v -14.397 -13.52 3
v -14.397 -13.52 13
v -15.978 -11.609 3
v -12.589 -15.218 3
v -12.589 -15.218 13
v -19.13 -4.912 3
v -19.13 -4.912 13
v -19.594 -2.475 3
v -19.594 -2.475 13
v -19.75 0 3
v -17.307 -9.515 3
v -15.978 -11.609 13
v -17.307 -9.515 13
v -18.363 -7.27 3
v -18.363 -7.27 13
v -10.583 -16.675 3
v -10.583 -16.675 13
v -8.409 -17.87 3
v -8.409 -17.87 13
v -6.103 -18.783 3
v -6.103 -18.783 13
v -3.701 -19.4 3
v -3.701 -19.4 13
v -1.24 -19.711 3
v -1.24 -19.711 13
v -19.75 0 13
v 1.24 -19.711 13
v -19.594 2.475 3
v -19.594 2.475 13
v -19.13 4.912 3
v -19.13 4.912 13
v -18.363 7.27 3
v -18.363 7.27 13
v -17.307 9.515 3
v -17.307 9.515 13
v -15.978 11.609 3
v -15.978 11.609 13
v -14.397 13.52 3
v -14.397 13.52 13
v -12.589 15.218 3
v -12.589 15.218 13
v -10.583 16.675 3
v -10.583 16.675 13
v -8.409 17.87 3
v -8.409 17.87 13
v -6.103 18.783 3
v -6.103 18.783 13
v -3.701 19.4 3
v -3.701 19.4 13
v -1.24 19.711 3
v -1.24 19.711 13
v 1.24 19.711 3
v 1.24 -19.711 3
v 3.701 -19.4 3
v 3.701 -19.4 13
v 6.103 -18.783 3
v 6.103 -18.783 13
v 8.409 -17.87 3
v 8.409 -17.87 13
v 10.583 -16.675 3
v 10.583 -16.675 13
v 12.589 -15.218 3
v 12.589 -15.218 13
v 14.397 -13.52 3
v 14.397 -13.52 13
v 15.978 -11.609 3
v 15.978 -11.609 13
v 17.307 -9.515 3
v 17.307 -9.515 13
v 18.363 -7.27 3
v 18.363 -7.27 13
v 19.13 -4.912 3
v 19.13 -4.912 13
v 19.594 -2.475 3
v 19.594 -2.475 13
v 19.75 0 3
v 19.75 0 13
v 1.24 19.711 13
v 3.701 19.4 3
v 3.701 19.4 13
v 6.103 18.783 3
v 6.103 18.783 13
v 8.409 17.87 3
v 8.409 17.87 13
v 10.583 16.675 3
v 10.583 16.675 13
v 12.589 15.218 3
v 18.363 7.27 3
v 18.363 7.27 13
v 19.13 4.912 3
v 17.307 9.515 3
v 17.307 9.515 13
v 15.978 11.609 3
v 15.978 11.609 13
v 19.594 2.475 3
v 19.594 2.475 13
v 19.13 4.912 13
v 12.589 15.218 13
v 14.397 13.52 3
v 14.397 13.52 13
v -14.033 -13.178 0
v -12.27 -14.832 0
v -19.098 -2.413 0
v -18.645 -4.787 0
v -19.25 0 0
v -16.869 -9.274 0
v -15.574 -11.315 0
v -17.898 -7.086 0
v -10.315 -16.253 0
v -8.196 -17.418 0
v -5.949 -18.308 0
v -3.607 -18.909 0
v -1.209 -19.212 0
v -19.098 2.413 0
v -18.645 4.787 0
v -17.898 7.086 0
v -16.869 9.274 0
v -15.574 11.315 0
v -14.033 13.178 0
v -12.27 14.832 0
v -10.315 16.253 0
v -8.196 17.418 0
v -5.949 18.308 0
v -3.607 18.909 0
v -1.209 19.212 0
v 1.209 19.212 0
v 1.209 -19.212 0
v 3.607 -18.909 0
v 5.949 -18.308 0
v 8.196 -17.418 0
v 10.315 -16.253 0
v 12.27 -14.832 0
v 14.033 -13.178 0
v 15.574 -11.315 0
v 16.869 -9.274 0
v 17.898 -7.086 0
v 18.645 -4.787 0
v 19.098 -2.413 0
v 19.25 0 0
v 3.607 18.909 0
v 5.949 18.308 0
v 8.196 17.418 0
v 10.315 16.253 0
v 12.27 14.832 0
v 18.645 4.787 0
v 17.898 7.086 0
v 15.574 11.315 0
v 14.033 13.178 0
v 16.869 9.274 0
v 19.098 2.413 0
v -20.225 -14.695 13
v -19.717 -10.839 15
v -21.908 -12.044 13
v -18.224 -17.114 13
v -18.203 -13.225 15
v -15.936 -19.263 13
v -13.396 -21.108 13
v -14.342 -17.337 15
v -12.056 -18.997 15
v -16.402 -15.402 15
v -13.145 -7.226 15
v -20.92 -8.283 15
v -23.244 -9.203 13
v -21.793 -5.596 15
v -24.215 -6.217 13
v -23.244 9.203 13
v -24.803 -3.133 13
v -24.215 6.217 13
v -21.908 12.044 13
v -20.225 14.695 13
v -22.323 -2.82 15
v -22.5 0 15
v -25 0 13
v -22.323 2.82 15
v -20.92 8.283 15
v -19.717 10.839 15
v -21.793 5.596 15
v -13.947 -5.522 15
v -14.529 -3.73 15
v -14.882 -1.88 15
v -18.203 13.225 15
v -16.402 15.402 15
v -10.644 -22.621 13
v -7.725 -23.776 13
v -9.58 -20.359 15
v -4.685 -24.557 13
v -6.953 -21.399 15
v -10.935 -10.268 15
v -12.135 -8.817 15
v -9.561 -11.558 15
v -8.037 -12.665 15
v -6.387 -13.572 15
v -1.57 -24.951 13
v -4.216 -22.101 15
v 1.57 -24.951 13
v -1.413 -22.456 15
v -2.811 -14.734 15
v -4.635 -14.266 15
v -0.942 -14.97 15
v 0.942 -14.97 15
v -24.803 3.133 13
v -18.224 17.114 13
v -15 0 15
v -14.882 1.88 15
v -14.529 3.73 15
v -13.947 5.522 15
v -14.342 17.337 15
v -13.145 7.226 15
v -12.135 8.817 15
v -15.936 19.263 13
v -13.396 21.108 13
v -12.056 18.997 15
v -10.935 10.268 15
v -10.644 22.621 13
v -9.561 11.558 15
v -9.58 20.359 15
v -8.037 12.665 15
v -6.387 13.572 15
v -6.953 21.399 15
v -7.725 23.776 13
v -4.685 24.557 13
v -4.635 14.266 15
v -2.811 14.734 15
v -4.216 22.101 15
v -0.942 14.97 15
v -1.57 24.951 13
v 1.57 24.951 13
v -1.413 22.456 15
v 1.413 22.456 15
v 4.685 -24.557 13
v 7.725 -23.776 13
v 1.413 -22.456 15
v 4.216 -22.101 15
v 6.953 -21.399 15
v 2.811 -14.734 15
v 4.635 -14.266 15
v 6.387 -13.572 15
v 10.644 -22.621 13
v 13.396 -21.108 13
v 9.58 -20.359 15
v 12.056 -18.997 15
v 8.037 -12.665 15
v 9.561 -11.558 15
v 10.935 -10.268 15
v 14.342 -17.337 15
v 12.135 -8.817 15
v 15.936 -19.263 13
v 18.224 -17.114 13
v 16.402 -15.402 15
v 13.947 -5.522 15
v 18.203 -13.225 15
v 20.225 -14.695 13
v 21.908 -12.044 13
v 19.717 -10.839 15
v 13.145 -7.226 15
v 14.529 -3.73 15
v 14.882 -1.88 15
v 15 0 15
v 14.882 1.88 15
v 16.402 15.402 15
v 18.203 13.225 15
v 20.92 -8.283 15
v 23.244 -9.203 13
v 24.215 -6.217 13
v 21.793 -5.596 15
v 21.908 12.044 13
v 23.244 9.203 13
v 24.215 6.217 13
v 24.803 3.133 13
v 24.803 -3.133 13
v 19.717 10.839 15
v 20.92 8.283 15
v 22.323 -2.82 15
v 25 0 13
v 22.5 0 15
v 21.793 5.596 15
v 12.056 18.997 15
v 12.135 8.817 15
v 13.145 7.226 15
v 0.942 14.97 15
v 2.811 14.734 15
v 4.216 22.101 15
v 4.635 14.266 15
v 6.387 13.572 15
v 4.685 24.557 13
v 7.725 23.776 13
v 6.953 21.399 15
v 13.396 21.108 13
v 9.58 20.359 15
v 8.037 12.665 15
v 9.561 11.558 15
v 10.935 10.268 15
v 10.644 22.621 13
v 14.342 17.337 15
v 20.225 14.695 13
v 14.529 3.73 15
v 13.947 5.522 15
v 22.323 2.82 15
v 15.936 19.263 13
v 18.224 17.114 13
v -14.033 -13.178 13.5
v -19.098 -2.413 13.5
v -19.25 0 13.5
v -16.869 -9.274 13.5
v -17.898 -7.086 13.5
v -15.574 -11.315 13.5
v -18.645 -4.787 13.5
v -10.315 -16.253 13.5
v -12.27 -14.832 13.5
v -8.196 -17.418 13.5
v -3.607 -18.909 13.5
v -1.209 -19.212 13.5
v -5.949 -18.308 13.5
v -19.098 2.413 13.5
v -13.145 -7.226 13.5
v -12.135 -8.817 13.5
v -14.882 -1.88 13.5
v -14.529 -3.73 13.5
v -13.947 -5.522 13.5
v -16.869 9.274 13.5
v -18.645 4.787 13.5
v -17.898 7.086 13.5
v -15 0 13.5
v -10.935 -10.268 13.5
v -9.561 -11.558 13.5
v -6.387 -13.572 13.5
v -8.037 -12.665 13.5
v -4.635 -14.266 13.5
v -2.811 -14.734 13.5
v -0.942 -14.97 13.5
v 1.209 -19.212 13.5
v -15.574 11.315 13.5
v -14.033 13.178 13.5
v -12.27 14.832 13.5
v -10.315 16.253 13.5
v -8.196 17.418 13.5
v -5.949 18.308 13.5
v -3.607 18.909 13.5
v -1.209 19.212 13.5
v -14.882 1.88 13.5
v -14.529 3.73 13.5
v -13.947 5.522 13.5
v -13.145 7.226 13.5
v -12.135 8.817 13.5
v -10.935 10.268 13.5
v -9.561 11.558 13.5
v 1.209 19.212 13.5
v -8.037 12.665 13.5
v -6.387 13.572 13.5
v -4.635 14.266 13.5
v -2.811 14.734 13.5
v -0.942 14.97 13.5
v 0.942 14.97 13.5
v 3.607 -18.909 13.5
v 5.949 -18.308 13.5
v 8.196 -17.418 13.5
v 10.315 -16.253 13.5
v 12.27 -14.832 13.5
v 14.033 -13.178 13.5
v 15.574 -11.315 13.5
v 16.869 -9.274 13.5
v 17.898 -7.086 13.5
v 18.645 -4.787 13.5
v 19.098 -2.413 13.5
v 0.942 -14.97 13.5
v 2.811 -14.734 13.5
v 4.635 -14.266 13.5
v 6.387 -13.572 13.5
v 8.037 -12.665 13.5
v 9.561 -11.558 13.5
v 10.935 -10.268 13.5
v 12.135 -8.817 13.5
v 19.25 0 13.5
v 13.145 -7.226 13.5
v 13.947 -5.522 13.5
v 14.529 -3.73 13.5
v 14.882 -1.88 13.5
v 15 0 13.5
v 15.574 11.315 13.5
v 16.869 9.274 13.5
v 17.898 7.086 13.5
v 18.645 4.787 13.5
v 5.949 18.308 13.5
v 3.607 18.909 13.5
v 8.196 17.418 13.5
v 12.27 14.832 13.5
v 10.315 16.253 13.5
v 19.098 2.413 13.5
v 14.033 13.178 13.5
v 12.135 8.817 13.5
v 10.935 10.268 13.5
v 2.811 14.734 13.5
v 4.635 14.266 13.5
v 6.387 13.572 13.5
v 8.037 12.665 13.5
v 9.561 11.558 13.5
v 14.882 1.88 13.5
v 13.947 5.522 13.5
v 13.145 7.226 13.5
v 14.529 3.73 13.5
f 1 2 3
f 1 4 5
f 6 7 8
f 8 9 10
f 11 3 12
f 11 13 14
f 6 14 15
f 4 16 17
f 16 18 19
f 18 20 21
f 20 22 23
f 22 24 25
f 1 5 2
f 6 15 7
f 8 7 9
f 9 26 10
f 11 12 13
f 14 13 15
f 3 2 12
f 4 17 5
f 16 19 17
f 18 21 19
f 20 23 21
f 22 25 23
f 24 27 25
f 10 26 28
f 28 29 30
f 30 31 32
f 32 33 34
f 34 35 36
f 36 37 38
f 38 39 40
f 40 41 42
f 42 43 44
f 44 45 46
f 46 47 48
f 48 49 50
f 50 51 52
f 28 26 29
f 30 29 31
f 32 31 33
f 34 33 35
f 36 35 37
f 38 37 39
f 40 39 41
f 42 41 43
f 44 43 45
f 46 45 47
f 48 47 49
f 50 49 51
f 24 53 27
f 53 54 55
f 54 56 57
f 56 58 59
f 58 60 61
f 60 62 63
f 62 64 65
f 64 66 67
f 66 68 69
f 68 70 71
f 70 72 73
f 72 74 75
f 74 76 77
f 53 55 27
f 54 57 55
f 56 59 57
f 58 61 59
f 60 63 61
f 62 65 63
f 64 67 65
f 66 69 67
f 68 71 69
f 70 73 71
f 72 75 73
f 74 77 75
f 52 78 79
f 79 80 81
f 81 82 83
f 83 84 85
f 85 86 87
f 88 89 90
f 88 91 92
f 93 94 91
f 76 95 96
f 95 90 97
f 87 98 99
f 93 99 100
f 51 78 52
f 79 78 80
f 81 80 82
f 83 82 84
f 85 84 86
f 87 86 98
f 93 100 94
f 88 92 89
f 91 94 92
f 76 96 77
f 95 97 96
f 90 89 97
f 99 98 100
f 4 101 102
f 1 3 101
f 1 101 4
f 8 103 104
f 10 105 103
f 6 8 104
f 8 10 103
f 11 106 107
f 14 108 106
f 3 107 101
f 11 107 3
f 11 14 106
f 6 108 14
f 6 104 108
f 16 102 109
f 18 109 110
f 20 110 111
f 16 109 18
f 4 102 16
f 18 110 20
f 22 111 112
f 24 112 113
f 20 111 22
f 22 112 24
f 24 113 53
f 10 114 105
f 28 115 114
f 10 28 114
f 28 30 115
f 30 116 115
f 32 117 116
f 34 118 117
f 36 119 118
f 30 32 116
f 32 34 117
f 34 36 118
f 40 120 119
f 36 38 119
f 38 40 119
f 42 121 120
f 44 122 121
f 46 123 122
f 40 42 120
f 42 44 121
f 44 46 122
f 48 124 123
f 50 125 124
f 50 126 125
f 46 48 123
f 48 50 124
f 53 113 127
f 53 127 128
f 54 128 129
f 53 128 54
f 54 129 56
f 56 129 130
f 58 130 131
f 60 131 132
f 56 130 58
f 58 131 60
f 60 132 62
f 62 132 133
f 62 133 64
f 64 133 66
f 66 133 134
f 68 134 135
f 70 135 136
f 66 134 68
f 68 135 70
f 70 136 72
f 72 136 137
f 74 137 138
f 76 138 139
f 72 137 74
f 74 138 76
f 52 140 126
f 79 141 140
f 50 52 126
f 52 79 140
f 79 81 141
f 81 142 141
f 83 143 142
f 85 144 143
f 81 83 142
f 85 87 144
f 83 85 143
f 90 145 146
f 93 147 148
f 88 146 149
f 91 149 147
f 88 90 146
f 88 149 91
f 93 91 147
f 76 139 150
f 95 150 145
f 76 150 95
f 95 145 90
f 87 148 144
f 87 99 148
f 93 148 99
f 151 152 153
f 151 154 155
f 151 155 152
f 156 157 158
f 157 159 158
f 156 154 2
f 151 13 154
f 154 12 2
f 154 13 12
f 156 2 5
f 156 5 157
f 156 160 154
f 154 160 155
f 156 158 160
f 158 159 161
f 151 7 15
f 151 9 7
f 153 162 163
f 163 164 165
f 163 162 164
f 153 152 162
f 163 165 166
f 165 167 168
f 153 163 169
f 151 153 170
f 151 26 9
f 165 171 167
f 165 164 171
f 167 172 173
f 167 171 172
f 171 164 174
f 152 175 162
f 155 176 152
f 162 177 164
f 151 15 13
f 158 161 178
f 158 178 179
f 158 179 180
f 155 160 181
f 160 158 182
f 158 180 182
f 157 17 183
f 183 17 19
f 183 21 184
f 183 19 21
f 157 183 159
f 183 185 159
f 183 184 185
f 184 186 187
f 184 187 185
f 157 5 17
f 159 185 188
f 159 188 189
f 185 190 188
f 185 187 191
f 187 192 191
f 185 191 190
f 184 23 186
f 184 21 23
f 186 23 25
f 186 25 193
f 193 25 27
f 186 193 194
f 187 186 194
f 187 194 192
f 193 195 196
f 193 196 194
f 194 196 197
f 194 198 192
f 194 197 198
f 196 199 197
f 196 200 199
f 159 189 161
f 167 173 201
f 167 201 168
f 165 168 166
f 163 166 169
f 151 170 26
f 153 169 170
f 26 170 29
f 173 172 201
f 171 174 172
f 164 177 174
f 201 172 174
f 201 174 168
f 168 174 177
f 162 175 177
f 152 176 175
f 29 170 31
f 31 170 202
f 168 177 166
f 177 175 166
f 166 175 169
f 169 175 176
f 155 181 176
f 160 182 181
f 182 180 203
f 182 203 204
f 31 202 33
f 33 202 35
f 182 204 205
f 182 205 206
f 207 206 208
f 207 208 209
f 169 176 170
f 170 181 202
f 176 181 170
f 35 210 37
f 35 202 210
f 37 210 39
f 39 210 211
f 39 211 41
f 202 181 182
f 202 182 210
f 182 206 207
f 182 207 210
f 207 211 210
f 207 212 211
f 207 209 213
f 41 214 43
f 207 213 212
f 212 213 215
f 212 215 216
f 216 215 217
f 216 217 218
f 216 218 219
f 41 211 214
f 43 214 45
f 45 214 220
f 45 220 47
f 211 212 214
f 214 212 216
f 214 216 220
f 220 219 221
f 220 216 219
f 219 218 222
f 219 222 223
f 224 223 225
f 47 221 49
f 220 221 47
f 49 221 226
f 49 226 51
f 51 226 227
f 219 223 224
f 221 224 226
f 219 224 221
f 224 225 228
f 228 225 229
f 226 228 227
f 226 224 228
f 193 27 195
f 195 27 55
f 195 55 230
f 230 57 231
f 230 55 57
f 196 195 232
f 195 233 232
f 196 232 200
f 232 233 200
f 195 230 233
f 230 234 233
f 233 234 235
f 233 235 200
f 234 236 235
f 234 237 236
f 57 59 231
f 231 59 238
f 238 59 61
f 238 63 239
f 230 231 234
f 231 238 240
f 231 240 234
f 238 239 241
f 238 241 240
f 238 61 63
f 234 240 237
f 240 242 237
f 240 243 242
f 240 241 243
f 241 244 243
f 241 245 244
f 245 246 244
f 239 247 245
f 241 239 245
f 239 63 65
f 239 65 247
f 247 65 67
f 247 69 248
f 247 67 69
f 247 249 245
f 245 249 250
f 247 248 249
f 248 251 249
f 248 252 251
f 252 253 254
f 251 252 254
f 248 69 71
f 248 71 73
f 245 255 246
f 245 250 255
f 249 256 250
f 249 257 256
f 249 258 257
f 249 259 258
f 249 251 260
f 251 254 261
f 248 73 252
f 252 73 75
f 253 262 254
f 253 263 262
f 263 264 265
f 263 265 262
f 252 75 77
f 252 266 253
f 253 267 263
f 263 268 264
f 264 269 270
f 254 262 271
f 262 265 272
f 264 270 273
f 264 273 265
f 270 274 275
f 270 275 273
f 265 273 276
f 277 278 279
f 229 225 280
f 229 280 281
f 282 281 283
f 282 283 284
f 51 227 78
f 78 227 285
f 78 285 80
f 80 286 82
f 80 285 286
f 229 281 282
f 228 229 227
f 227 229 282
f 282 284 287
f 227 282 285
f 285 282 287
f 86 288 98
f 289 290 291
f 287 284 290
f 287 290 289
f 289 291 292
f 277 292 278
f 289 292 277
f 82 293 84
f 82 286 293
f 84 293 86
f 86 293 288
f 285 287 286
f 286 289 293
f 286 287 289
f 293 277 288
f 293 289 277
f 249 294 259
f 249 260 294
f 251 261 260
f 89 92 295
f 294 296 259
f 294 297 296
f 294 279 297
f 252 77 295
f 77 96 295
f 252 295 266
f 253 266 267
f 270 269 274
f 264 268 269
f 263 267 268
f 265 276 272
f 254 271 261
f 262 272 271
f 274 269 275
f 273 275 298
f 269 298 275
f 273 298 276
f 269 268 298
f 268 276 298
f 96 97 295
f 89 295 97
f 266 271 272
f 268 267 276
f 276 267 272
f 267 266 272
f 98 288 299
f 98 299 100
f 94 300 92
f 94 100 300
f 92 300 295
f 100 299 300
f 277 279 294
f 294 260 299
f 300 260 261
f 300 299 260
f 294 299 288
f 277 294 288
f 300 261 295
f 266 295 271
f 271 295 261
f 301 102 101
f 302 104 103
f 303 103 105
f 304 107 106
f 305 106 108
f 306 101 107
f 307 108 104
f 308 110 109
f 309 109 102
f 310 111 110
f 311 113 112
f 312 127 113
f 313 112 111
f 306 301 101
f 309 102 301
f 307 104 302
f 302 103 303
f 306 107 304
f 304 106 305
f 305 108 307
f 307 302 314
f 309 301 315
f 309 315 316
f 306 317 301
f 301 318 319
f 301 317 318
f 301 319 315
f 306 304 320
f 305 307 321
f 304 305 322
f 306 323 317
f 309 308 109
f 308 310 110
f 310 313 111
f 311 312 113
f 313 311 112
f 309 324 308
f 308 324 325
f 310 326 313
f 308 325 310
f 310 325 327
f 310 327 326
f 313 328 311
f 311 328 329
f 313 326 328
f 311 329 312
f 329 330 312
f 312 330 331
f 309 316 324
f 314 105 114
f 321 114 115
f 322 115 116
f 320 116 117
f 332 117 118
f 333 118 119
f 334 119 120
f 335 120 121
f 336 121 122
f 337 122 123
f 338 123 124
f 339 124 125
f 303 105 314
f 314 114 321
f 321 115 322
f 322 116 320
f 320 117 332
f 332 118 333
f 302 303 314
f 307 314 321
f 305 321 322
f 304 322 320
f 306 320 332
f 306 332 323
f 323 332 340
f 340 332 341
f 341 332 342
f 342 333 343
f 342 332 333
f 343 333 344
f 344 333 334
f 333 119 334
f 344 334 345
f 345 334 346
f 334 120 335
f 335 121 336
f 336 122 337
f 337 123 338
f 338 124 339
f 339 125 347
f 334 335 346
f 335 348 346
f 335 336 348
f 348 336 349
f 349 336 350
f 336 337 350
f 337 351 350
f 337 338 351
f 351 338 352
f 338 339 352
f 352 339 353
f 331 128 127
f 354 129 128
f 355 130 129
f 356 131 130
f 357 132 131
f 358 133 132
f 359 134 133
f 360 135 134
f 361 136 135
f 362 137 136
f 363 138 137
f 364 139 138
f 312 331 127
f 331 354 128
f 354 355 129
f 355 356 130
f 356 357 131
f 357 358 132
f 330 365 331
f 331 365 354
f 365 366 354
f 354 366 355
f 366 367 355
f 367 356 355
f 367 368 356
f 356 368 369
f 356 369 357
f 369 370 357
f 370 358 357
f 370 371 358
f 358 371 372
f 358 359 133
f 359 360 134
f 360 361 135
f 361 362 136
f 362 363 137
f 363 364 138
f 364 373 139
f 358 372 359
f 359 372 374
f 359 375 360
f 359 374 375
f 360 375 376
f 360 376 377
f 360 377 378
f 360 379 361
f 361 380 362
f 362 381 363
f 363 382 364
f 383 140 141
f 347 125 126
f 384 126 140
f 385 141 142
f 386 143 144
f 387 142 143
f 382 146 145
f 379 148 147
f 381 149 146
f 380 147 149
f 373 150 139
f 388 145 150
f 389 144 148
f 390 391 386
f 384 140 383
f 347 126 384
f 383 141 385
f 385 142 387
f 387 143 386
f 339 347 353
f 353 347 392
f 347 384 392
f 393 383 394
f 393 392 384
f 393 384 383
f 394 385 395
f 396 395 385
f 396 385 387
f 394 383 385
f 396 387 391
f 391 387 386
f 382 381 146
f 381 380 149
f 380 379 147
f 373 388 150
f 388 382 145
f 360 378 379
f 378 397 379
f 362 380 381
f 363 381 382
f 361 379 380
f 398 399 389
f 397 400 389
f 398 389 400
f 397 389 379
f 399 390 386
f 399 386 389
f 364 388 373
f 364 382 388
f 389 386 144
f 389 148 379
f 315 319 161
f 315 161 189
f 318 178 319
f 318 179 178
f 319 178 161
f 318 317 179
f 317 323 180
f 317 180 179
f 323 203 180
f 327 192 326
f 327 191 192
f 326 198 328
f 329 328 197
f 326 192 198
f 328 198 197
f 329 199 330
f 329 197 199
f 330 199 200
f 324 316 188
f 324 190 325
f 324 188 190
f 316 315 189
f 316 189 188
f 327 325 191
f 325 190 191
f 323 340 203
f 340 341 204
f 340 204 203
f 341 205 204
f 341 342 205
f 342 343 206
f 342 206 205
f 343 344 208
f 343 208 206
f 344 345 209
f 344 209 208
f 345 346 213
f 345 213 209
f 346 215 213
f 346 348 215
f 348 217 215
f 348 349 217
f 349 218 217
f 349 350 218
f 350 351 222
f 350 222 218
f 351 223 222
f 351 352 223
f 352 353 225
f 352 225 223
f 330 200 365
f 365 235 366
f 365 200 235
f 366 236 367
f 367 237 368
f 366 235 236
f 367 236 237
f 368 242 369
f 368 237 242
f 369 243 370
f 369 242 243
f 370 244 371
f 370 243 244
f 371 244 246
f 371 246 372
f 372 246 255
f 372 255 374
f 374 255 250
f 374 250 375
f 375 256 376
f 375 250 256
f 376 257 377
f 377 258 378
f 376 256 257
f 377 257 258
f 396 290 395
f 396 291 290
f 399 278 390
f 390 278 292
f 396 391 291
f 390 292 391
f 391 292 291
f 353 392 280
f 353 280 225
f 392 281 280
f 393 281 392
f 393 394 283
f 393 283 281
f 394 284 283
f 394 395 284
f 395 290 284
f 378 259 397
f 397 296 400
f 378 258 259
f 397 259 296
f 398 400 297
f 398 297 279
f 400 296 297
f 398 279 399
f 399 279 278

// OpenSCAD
$fn = 50;

difference() {
	union() {
		translate(v = [0, 0, 3.0]) {
			cylinder(h = 12, r = 19.75);
		}
		cylinder(h = 3, r1 = 19.25, r2 = 19.75);
		translate(v = [0, 0, 13.0]) {
			cylinder(h = 2, r1 = 25.0, r2 = 22.5);
		}
	}
	union() {
		translate(v = [0, 0, -0.5]) {
			cylinder(h = 14.0, r = 19.25);
		}
		#translate(v = [0, 0, 13.0]) {
			cylinder(h = 2, r = 15.0);
		}
	}
}
